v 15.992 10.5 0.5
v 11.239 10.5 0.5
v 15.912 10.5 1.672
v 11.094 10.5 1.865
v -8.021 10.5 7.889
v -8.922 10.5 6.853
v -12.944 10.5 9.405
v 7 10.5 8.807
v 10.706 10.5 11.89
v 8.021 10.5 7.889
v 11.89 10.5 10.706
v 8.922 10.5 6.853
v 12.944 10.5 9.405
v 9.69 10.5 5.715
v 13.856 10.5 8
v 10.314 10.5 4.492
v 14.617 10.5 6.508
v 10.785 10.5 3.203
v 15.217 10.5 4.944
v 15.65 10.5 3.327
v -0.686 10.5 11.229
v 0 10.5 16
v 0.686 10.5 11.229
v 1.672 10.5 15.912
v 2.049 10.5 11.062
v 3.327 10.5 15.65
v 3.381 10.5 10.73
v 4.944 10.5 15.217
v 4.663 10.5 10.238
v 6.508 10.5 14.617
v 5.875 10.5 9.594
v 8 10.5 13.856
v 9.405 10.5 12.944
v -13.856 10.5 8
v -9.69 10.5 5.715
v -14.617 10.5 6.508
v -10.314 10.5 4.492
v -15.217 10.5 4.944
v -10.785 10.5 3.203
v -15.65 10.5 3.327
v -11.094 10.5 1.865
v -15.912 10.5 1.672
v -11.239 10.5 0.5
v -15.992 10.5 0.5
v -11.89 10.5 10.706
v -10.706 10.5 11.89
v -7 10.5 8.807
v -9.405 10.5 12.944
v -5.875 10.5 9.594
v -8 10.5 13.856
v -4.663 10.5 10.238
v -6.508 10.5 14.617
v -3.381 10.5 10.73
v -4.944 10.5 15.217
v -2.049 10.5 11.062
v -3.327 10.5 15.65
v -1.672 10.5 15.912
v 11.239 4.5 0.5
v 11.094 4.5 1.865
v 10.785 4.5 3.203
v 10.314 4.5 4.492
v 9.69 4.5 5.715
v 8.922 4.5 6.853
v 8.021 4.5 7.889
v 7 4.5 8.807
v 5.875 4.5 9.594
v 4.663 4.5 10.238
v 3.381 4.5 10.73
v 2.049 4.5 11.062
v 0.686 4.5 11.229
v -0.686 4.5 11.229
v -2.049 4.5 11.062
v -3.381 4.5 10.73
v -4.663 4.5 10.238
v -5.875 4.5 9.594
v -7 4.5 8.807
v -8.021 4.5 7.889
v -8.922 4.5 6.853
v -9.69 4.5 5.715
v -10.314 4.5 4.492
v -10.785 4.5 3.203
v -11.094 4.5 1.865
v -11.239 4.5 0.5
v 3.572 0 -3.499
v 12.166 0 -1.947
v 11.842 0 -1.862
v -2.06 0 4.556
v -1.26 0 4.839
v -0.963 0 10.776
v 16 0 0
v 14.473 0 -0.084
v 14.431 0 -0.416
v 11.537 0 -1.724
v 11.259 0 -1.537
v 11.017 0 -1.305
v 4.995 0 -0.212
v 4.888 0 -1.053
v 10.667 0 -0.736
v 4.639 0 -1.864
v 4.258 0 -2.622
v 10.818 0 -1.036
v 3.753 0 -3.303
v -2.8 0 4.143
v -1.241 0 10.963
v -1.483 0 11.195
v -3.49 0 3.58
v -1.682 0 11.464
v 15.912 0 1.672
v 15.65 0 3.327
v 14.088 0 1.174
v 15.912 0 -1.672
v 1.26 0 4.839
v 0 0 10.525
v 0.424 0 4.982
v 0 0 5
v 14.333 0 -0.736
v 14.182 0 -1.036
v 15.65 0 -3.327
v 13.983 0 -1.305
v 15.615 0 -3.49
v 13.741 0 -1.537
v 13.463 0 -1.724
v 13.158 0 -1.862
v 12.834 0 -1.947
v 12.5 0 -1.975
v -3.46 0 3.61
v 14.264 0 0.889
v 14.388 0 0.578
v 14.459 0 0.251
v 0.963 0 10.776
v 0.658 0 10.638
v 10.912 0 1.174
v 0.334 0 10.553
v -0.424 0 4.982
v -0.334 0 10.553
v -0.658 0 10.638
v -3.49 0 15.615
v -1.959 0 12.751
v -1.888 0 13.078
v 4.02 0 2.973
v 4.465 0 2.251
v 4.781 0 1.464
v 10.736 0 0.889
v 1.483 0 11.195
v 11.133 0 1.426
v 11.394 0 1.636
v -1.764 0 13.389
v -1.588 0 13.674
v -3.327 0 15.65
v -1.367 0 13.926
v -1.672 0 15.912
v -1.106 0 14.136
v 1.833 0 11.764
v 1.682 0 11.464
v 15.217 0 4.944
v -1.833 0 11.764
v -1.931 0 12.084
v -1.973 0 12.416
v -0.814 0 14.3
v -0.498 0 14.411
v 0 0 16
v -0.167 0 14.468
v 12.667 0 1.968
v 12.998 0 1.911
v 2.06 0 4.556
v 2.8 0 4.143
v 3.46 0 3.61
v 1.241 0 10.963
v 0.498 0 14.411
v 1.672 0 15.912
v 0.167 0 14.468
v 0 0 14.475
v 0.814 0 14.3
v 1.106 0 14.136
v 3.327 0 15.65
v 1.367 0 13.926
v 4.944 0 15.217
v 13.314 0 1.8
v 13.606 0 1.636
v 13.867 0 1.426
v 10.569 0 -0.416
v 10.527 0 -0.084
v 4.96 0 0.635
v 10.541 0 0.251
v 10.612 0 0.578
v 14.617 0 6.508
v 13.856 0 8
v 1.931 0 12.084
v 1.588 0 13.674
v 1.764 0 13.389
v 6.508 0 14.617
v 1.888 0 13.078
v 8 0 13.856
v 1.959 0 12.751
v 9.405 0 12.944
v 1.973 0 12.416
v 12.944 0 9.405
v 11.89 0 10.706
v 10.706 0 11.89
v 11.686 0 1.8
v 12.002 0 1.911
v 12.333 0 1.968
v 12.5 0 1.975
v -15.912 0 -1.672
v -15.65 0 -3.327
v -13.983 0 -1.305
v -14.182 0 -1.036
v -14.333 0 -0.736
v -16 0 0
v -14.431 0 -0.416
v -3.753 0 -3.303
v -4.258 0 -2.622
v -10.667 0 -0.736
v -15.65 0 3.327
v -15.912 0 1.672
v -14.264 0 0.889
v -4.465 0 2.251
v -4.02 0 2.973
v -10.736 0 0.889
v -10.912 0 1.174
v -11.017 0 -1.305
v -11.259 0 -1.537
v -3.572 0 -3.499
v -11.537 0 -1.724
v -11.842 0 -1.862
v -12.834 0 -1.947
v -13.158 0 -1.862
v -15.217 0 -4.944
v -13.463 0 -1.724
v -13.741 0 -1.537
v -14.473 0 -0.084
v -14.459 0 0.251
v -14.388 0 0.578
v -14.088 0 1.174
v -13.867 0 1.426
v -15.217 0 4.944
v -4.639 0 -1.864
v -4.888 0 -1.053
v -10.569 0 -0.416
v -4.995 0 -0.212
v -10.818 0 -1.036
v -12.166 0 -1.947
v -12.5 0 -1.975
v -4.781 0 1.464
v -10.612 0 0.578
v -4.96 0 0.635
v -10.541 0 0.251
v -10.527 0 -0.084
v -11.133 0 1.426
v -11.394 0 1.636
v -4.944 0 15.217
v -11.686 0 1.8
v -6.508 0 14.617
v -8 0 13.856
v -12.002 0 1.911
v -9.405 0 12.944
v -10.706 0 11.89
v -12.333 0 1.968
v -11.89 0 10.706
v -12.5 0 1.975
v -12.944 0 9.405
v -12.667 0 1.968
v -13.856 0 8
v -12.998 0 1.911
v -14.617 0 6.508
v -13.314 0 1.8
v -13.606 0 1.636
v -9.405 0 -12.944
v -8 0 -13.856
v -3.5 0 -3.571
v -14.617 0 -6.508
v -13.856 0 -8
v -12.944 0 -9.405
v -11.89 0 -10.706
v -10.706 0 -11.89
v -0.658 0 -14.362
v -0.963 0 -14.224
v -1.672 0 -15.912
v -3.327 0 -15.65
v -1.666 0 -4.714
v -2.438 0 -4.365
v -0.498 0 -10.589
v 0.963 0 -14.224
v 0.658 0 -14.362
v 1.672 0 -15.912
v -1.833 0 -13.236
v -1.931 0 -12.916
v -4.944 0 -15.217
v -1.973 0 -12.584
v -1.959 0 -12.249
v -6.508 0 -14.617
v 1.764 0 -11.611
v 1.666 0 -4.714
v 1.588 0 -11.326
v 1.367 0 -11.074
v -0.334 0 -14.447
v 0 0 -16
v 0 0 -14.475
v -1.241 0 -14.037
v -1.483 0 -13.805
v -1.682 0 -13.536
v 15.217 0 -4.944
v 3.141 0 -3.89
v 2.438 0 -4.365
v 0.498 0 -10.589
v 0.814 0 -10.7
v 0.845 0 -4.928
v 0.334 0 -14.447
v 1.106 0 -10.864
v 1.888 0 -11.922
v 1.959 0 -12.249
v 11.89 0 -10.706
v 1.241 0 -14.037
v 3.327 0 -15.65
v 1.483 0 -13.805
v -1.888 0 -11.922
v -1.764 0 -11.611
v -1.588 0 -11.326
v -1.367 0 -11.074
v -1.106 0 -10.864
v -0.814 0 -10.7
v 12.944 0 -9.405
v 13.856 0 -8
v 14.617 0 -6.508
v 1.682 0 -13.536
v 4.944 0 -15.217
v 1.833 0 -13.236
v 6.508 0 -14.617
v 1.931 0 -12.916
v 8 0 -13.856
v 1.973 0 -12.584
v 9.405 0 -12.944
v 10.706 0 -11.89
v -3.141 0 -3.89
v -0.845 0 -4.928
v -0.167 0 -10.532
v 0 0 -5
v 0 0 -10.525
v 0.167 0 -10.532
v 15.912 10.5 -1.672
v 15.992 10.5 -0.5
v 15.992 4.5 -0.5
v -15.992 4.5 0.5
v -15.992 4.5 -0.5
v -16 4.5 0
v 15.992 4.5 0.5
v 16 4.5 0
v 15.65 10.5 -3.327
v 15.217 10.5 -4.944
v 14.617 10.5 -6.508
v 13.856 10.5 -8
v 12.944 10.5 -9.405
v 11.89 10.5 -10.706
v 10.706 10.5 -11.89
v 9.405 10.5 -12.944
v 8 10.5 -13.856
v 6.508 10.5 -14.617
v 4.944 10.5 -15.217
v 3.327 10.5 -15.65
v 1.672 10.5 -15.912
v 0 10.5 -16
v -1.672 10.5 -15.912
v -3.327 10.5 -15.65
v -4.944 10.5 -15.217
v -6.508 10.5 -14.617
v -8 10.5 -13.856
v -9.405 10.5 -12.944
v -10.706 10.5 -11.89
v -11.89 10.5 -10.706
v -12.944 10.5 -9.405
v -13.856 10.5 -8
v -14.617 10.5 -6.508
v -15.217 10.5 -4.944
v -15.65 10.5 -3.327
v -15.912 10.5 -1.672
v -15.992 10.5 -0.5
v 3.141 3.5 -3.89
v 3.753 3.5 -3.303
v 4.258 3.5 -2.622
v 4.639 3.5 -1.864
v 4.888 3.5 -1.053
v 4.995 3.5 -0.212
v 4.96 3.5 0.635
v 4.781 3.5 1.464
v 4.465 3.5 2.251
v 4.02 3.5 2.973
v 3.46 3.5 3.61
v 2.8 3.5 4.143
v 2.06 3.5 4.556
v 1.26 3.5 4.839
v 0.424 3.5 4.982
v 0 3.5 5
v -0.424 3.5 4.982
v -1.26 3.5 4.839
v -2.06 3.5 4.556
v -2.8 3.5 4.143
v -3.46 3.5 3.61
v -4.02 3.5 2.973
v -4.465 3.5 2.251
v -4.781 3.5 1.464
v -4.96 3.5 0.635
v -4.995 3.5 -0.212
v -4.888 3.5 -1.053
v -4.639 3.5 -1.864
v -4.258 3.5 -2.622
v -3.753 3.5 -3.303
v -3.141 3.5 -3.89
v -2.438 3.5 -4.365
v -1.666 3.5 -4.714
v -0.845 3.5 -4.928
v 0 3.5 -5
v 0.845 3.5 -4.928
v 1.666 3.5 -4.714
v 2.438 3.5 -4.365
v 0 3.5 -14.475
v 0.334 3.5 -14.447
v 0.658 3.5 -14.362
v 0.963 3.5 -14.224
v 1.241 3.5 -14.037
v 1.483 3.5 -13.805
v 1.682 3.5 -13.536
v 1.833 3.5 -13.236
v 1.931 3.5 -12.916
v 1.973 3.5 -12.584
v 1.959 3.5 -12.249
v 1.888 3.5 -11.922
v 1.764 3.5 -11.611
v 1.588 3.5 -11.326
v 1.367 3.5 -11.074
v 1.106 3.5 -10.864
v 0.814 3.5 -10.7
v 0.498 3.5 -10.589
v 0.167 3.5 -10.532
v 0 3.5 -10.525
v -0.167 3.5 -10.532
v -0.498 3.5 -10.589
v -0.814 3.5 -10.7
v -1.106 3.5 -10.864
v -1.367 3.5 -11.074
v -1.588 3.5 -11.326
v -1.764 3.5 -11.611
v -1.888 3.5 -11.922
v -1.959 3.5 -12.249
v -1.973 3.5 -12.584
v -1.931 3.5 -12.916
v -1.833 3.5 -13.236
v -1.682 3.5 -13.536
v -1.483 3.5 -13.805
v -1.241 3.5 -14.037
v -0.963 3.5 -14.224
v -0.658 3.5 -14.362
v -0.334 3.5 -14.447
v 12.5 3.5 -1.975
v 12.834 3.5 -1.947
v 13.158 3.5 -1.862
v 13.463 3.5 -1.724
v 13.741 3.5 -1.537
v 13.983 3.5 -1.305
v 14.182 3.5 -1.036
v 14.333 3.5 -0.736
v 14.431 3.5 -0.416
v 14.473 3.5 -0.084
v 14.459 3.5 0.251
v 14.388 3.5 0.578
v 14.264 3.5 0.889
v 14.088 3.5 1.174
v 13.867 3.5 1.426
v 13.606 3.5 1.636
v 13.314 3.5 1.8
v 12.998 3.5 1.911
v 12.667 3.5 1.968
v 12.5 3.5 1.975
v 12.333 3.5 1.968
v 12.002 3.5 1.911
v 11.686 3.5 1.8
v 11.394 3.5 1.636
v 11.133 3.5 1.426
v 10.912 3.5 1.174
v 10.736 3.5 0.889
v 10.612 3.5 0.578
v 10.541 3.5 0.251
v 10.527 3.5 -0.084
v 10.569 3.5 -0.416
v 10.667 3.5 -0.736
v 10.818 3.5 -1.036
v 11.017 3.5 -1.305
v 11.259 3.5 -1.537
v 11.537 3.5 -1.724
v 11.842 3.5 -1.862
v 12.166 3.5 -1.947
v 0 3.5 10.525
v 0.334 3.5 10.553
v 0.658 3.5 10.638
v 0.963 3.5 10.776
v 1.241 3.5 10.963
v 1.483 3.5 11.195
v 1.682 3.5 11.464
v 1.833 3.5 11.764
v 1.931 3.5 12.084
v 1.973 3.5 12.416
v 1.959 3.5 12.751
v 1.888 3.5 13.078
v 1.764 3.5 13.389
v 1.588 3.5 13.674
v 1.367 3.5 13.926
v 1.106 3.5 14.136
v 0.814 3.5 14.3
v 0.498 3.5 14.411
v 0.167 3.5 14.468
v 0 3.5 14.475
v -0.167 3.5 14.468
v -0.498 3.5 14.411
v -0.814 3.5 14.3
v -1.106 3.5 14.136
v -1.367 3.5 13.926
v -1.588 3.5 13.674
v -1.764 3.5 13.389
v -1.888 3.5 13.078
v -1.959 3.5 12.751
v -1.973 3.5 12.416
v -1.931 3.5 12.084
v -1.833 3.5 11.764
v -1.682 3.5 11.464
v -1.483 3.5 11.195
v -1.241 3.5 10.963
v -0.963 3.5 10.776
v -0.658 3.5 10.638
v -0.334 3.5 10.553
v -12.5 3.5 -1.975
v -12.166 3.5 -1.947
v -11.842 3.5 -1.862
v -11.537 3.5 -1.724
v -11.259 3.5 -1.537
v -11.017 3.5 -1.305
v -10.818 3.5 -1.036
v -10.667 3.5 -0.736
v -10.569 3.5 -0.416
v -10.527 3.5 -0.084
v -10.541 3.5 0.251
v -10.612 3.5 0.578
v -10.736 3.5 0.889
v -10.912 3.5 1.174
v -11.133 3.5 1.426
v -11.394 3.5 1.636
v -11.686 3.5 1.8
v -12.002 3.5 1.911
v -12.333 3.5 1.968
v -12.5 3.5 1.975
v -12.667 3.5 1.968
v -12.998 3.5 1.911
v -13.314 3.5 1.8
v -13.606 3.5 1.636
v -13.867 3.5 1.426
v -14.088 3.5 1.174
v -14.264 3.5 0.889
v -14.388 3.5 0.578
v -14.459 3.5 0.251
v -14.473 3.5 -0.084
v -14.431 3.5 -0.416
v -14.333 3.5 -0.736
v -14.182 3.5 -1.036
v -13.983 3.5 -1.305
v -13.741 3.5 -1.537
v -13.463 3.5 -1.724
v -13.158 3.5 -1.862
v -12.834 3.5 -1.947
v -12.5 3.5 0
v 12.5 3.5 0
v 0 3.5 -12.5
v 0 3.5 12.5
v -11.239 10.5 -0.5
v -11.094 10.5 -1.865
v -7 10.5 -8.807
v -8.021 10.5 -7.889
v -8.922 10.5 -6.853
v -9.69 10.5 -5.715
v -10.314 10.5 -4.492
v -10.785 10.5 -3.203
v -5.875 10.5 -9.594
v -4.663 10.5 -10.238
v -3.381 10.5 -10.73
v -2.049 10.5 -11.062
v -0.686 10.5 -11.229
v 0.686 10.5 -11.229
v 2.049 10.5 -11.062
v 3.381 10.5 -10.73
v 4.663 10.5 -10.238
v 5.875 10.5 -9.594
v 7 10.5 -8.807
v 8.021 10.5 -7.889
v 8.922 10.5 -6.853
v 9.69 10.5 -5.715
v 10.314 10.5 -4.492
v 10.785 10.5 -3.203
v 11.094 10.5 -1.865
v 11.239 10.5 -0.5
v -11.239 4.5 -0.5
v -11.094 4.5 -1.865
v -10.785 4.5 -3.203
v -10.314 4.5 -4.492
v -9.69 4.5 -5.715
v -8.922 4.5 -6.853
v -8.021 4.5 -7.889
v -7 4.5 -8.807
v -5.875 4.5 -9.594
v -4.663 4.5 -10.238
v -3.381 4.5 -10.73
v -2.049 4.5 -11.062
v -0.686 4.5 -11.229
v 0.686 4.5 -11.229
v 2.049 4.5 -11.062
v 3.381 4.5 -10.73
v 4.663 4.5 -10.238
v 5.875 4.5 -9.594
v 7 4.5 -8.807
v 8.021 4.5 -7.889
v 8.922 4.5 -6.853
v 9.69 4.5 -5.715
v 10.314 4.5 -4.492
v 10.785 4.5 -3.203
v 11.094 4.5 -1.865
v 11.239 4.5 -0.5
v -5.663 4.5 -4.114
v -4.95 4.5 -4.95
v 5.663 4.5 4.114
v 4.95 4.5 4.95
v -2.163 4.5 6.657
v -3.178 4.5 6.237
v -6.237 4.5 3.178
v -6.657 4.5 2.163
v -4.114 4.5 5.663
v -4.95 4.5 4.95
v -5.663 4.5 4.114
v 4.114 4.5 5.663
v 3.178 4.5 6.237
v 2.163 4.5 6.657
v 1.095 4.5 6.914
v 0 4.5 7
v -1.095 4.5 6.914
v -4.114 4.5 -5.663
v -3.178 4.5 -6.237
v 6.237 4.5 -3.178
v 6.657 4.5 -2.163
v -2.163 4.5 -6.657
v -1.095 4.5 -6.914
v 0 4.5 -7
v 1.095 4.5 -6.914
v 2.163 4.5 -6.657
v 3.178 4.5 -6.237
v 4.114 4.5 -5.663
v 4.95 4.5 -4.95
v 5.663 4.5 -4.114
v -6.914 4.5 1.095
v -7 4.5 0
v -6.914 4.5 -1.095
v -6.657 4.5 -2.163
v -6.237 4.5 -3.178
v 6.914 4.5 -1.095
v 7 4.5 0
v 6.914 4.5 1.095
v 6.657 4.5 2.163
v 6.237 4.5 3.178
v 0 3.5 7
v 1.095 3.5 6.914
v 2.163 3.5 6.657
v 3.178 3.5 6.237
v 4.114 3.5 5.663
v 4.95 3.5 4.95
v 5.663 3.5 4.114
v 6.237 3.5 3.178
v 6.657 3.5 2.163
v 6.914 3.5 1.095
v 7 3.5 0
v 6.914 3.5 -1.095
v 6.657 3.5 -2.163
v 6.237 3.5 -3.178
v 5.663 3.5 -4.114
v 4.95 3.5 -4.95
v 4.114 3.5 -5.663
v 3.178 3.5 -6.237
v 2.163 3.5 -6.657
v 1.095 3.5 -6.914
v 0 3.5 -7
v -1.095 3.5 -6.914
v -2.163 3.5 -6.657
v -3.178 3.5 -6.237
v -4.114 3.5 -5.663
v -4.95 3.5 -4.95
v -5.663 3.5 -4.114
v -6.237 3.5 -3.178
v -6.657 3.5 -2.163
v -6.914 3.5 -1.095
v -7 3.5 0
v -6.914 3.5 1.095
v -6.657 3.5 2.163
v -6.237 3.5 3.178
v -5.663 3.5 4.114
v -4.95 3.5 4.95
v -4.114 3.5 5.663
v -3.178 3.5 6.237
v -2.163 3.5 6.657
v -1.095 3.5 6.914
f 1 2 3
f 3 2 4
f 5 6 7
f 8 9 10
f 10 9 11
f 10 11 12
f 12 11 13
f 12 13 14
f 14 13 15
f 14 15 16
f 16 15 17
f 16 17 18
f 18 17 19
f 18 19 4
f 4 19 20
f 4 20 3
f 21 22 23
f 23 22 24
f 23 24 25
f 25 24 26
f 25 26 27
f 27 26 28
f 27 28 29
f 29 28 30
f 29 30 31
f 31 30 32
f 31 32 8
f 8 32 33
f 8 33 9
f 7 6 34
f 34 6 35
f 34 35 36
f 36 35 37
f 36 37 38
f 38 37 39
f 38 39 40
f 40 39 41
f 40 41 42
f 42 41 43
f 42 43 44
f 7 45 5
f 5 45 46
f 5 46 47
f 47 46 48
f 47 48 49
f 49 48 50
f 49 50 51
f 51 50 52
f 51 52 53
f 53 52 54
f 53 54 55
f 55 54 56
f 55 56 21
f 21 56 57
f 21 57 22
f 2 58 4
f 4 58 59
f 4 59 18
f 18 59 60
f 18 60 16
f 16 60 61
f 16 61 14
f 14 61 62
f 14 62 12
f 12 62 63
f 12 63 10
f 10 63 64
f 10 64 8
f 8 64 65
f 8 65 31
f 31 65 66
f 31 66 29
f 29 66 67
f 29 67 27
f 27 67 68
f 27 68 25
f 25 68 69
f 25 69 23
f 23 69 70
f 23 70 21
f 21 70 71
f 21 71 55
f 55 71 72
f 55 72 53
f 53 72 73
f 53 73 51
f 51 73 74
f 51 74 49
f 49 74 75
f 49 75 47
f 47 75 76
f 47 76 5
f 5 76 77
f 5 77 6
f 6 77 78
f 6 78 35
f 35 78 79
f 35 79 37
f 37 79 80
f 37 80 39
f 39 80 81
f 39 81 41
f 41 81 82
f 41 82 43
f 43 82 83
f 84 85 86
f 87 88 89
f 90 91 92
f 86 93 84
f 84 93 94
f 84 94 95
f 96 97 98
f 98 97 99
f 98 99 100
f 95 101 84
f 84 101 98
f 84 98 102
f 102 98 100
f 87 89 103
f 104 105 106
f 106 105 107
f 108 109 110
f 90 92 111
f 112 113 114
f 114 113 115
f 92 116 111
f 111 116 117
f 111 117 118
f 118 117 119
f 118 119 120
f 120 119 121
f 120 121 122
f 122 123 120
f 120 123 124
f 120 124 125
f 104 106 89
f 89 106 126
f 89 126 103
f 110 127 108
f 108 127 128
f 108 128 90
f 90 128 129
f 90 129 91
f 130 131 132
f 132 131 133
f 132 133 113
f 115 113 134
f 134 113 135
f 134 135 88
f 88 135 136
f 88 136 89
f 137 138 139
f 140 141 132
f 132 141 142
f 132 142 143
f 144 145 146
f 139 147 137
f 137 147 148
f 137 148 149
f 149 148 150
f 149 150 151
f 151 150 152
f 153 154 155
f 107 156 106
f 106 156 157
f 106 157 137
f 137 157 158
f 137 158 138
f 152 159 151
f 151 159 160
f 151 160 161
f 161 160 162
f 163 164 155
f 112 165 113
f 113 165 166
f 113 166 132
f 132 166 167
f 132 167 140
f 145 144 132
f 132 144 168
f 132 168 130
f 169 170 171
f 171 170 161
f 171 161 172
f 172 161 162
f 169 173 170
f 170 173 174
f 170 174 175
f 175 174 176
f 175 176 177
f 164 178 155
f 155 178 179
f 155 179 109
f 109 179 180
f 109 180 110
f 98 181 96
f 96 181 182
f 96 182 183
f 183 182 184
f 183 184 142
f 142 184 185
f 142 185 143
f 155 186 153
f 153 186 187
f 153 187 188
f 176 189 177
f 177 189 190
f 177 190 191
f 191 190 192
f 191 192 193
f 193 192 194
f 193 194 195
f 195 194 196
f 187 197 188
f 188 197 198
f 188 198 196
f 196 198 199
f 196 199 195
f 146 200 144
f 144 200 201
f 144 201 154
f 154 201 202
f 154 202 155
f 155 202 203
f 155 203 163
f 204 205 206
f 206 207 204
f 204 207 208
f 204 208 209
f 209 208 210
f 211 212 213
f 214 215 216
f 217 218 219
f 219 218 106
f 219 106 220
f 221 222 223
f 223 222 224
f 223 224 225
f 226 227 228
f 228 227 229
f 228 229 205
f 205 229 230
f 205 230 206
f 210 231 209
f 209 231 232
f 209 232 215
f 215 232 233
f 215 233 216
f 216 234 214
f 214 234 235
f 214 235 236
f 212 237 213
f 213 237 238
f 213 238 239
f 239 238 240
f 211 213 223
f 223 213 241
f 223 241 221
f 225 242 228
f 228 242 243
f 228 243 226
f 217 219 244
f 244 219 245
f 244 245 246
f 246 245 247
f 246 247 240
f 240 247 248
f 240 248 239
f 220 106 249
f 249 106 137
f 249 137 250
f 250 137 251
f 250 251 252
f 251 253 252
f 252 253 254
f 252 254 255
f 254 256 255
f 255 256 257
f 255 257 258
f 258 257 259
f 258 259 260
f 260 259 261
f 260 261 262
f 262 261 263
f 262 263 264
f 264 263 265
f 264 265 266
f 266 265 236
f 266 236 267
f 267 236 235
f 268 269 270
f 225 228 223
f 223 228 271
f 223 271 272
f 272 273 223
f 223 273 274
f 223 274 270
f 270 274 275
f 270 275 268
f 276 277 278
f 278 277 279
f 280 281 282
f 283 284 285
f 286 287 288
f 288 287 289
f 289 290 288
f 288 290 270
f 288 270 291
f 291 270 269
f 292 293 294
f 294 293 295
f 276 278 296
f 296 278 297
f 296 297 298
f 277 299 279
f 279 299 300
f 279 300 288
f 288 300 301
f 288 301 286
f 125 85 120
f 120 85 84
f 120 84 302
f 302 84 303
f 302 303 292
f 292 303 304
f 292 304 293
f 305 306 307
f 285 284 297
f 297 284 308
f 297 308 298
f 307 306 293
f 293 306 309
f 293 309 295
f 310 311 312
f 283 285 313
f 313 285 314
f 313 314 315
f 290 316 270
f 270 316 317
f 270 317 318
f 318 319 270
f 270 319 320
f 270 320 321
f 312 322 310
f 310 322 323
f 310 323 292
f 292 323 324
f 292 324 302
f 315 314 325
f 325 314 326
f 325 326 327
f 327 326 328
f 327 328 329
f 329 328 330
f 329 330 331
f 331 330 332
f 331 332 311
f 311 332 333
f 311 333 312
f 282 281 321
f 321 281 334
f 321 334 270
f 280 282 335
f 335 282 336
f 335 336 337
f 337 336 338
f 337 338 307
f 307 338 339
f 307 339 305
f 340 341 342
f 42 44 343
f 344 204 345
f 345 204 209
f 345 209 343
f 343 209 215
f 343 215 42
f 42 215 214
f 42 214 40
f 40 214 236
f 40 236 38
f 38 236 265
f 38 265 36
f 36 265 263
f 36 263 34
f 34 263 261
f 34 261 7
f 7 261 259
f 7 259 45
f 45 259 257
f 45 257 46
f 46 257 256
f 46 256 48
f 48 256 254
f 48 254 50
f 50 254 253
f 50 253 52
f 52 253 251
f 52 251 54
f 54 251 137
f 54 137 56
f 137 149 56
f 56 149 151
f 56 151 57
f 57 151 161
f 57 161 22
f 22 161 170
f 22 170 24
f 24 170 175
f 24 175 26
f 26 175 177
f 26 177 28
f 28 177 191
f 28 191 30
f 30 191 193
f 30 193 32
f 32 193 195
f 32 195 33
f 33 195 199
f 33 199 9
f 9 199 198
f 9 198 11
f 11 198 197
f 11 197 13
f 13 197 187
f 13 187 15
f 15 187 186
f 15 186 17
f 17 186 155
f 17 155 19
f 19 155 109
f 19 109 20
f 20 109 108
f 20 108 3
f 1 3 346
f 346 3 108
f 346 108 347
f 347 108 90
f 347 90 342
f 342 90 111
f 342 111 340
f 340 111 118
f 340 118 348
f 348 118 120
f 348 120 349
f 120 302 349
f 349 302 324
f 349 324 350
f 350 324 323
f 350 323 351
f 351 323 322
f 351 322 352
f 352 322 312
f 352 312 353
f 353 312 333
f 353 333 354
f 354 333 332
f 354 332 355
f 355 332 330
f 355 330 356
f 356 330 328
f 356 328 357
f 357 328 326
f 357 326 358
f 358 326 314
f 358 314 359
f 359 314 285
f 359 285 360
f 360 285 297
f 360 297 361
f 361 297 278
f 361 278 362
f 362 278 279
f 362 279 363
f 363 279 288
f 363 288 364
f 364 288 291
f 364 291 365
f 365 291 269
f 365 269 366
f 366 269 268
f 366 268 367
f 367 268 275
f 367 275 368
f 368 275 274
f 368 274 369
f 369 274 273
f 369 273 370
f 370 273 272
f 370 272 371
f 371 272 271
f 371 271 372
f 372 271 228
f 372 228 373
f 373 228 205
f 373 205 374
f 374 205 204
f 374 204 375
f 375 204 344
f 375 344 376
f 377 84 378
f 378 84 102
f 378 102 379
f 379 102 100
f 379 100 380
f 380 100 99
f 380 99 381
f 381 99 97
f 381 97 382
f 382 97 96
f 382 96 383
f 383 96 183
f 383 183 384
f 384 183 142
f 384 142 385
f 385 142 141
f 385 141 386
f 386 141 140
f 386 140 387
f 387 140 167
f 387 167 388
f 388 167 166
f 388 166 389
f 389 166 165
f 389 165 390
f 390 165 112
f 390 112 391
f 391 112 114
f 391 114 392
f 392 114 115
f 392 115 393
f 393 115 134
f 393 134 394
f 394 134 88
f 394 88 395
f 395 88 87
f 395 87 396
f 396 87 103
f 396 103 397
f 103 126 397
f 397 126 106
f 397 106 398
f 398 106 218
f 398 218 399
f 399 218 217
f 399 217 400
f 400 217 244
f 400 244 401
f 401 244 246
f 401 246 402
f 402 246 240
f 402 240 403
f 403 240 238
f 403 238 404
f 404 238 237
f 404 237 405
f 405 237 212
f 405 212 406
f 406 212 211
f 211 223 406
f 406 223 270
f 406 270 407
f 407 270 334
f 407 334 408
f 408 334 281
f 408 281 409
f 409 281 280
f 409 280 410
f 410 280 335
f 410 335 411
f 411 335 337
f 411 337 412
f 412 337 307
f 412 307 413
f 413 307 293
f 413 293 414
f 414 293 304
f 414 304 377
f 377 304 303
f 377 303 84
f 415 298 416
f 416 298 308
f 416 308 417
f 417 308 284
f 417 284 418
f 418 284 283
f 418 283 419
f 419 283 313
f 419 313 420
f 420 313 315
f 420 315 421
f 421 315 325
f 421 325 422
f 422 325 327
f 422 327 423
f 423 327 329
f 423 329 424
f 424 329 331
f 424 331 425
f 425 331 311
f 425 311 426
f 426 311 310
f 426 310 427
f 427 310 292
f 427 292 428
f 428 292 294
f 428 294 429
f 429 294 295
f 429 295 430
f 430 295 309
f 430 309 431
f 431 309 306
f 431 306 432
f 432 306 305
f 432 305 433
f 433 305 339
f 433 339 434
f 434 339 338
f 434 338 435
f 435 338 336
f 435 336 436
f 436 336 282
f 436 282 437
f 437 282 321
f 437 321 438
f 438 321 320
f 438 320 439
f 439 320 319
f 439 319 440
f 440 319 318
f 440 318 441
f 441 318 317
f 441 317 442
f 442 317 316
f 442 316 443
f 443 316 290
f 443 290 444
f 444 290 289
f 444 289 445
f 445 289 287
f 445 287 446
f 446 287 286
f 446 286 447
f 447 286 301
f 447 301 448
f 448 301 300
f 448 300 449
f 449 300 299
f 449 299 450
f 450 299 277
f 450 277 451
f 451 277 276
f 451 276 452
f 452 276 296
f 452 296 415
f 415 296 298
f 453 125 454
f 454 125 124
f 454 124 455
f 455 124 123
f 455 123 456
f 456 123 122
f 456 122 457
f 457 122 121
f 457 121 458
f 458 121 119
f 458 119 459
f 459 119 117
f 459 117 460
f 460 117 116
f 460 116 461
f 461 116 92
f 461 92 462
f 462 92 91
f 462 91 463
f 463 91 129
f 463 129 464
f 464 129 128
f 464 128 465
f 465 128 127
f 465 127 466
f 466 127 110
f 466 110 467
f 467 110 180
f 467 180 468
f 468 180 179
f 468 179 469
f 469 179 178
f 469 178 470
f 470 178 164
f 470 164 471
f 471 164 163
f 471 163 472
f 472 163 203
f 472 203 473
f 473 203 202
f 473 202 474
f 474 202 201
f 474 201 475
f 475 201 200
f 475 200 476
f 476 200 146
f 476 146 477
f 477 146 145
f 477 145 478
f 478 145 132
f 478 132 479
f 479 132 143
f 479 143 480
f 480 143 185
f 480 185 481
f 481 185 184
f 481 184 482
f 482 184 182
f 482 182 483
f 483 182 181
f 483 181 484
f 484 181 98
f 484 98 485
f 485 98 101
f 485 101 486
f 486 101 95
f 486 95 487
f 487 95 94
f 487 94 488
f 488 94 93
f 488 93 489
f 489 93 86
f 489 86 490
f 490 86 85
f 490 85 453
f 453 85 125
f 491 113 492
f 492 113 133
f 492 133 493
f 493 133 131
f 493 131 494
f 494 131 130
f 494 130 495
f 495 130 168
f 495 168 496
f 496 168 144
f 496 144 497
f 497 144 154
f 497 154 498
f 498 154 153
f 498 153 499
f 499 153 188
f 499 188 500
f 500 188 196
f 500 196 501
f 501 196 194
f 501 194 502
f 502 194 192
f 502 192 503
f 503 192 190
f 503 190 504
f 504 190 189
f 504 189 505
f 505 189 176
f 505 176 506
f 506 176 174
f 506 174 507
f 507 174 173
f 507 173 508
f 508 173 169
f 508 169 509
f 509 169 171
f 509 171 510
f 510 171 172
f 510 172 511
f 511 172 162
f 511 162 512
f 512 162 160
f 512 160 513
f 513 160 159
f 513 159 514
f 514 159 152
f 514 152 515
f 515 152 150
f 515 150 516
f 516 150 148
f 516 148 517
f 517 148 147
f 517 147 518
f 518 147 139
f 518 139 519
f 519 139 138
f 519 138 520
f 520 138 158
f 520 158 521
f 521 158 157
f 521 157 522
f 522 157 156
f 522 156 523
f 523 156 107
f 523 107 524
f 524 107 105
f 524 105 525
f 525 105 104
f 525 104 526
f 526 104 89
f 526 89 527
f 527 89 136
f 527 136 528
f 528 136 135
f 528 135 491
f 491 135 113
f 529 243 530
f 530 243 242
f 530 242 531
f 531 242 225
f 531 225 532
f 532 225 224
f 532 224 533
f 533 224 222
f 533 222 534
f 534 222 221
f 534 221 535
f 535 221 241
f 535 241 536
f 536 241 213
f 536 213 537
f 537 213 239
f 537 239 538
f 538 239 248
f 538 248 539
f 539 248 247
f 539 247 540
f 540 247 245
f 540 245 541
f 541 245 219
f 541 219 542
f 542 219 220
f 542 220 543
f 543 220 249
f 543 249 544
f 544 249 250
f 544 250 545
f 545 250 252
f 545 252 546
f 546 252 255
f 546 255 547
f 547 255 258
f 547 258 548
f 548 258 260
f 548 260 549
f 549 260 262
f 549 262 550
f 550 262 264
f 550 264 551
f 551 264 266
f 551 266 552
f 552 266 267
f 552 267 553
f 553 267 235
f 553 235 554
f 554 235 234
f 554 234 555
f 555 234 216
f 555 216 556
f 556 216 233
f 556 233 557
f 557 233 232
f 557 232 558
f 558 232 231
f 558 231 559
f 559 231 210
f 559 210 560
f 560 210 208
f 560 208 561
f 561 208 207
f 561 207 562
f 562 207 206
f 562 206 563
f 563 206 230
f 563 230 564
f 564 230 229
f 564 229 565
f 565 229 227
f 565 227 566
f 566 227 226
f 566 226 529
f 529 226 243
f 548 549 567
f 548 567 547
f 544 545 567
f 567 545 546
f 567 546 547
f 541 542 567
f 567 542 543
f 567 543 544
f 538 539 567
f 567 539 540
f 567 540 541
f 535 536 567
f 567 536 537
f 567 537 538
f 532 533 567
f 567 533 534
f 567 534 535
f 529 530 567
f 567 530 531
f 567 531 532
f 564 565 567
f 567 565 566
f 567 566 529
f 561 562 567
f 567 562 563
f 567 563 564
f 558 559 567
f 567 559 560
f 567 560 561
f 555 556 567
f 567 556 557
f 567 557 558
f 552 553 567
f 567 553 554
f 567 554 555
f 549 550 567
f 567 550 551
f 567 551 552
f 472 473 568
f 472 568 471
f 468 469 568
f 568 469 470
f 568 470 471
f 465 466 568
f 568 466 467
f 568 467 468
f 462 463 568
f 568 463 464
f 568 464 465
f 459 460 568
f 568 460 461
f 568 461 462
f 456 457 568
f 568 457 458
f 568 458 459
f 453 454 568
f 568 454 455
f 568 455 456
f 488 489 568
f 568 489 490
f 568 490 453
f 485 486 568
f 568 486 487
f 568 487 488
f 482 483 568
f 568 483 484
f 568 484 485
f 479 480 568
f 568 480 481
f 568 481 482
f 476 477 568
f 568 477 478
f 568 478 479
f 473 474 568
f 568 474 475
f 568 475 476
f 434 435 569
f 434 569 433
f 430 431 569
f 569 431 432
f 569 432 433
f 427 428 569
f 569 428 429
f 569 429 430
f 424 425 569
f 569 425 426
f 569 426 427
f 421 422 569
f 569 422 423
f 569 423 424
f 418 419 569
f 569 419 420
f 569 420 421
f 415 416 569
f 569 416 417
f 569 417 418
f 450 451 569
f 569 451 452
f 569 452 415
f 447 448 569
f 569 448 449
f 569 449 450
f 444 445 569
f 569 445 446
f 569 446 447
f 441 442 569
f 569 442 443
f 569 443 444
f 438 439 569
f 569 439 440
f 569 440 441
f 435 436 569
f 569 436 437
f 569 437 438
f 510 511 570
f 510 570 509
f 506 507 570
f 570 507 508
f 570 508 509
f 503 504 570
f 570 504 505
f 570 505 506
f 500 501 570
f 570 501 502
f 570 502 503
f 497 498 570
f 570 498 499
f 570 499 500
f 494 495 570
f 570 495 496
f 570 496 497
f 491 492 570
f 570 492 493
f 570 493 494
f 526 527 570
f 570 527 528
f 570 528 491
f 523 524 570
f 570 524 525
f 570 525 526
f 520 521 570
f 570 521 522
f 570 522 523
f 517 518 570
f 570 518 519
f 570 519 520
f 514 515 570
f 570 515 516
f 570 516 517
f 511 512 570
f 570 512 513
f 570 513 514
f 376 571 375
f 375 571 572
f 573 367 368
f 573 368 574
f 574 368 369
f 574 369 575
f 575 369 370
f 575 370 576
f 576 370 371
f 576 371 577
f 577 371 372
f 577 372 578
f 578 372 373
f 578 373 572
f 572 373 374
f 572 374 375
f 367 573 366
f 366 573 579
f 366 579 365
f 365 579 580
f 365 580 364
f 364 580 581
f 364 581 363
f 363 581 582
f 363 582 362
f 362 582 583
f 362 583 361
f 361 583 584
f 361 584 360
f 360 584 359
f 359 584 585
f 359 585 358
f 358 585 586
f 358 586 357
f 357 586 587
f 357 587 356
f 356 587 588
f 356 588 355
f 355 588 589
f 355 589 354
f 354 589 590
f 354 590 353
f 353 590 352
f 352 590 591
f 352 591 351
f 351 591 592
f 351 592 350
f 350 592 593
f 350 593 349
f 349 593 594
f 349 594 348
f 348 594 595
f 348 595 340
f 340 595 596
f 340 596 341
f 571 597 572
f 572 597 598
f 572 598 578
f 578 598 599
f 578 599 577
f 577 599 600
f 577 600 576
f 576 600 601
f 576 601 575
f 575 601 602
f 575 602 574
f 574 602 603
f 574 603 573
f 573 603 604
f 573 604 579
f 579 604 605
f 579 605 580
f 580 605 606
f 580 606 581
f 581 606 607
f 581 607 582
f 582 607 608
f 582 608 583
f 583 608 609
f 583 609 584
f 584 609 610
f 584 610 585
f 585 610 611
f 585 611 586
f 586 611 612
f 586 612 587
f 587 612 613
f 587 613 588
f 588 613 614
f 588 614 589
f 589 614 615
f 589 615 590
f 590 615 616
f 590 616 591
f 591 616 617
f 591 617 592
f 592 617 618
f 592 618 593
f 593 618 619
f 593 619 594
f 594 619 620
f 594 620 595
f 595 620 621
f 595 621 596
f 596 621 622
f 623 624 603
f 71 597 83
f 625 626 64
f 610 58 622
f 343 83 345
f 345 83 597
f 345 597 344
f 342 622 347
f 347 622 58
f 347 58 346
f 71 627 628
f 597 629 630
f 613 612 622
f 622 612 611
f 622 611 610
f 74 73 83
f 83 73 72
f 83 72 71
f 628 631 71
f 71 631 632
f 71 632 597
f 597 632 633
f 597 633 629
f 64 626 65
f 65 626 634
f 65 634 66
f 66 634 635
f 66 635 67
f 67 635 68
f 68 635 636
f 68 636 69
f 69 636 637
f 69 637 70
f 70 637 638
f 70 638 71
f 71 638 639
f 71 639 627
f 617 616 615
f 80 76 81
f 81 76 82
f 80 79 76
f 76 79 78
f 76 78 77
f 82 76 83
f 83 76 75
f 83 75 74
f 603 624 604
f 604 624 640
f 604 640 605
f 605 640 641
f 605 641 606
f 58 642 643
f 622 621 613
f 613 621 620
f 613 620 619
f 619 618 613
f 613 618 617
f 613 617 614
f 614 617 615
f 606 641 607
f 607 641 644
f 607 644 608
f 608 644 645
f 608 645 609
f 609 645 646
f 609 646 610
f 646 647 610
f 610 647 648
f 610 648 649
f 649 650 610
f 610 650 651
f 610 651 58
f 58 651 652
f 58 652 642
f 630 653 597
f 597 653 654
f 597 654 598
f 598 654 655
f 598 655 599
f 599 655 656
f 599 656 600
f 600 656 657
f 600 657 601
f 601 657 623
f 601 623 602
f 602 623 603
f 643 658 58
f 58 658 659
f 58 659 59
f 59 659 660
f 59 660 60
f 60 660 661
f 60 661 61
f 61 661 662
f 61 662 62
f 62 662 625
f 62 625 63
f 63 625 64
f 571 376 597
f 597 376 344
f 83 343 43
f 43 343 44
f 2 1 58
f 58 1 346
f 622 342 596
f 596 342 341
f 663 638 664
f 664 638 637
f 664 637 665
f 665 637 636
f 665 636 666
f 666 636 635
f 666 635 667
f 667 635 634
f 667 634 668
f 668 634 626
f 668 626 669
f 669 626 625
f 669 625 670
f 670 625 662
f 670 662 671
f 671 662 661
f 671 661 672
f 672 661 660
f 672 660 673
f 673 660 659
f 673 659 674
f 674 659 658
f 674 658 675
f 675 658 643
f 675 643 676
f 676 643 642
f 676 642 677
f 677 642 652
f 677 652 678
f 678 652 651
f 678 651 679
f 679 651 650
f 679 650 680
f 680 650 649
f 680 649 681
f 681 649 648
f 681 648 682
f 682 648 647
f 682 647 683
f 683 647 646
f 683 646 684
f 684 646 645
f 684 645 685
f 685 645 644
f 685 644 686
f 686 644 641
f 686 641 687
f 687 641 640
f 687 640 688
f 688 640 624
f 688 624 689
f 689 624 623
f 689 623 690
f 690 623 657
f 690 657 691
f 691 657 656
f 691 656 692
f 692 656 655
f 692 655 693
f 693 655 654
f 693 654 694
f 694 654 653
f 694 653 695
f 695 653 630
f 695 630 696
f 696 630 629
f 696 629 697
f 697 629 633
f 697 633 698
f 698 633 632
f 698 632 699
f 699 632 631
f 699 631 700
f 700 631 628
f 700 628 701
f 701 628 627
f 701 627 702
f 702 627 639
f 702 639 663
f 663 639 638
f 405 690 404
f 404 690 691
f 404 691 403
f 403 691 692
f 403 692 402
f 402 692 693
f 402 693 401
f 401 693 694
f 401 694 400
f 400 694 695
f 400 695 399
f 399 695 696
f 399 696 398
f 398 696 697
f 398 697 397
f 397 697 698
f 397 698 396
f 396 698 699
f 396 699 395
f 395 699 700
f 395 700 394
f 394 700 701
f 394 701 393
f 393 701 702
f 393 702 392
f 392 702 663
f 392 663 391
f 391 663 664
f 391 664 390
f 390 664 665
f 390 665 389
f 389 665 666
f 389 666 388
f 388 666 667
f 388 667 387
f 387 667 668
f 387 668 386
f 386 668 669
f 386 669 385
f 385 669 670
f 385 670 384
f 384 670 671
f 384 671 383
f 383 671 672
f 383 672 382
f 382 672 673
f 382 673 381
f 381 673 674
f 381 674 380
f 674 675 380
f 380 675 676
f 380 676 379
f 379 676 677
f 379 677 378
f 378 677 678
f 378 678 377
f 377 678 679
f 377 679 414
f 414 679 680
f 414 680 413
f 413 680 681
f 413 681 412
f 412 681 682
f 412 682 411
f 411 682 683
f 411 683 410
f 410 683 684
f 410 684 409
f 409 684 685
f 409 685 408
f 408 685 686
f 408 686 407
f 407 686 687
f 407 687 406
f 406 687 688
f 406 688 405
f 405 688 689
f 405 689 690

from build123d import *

# Parameters (mm, degrees)
SKETCH1_R           = 16
SKETCH1_R_2         = 5
SKETCH1_R_3         = 1.975
BOSS_EXTRUDE1_DEPTH = 3.5
SKETCH2_R           = 16
BOSS_EXTRUDE2_DEPTH = 1
SKETCH3_R           = 16
SKETCH3_R_2         = 11.25
BOSS_EXTRUDE3_DEPTH = 6
SKETCH4_W           = 32
SKETCH4_H           = 1
CUT_EXTRUDE1_DEPTH  = 6
SKETCH5_R           = 7
CUT_EXTRUDE2_DEPTH  = 1


with BuildPart() as part:
    # Sketch1 → Boss-Extrude1 (new body)
    with BuildSketch(Plane(origin=(0, 0, 0), x_dir=(1, 0, 0), z_dir=(0, 1, 0))):
        with Locations(Location((0, 0, 0), (0, 0, 270))):
            Circle(SKETCH1_R)
        with Locations(Location((0, 0, 0), (0, 0, 270))):
            Circle(SKETCH1_R_2, mode=Mode.SUBTRACT)
        with Locations(Location((0, 12.5, 0), (0, 0, 270))):
            Circle(SKETCH1_R_3, mode=Mode.SUBTRACT)
        with Locations(Location((12.5, 0, 0), (0, 0, 270))):
            Circle(SKETCH1_R_3, mode=Mode.SUBTRACT)
        with Locations(Location((0, -12.5, 0), (0, 0, 270))):
            Circle(SKETCH1_R_3, mode=Mode.SUBTRACT)
        with Locations(Location((-12.5, 0, 0), (0, 0, 270))):
            Circle(SKETCH1_R_3, mode=Mode.SUBTRACT)
    extrude(amount=BOSS_EXTRUDE1_DEPTH)

    # Sketch2 → Boss-Extrude2 (add)
    with BuildSketch(Plane(origin=(0, 3.5, 0), x_dir=(1, 0, 0), z_dir=(0, 1, 0))):
        with Locations(Location((0, 0, 0), (0, 0, 270))):
            Circle(SKETCH2_R)
    extrude(amount=BOSS_EXTRUDE2_DEPTH)

    # Sketch3 → Boss-Extrude3 (add)
    with BuildSketch(Plane(origin=(0, 4.5, 0), x_dir=(1, 0, 0), z_dir=(0, 1, 0))):
        with Locations(Location((0, 0, 0), (0, 0, 270))):
            Circle(SKETCH3_R)
        with Locations(Location((0, 0, 0), (0, 0, 270))):
            Circle(SKETCH3_R_2, mode=Mode.SUBTRACT)
    extrude(amount=BOSS_EXTRUDE3_DEPTH)

    # Sketch4 → Cut-Extrude1 (cut)
    with BuildSketch(Plane(origin=(0, 10.5, 0), x_dir=(1, 0, 0), z_dir=(0, 1, 0))):
        Rectangle(SKETCH4_W, SKETCH4_H)
    extrude(amount=-CUT_EXTRUDE1_DEPTH, mode=Mode.SUBTRACT)

    # Sketch5 → Cut-Extrude2 (cut)
    with BuildSketch(Plane(origin=(0, 4.5, 0), x_dir=(1, 0, 0), z_dir=(0, 1, 0))):
        with Locations(Location((0, 0, 0), (0, 0, 270))):
            Circle(SKETCH5_R)
    extrude(amount=-CUT_EXTRUDE2_DEPTH, mode=Mode.SUBTRACT)


solid = part.part
